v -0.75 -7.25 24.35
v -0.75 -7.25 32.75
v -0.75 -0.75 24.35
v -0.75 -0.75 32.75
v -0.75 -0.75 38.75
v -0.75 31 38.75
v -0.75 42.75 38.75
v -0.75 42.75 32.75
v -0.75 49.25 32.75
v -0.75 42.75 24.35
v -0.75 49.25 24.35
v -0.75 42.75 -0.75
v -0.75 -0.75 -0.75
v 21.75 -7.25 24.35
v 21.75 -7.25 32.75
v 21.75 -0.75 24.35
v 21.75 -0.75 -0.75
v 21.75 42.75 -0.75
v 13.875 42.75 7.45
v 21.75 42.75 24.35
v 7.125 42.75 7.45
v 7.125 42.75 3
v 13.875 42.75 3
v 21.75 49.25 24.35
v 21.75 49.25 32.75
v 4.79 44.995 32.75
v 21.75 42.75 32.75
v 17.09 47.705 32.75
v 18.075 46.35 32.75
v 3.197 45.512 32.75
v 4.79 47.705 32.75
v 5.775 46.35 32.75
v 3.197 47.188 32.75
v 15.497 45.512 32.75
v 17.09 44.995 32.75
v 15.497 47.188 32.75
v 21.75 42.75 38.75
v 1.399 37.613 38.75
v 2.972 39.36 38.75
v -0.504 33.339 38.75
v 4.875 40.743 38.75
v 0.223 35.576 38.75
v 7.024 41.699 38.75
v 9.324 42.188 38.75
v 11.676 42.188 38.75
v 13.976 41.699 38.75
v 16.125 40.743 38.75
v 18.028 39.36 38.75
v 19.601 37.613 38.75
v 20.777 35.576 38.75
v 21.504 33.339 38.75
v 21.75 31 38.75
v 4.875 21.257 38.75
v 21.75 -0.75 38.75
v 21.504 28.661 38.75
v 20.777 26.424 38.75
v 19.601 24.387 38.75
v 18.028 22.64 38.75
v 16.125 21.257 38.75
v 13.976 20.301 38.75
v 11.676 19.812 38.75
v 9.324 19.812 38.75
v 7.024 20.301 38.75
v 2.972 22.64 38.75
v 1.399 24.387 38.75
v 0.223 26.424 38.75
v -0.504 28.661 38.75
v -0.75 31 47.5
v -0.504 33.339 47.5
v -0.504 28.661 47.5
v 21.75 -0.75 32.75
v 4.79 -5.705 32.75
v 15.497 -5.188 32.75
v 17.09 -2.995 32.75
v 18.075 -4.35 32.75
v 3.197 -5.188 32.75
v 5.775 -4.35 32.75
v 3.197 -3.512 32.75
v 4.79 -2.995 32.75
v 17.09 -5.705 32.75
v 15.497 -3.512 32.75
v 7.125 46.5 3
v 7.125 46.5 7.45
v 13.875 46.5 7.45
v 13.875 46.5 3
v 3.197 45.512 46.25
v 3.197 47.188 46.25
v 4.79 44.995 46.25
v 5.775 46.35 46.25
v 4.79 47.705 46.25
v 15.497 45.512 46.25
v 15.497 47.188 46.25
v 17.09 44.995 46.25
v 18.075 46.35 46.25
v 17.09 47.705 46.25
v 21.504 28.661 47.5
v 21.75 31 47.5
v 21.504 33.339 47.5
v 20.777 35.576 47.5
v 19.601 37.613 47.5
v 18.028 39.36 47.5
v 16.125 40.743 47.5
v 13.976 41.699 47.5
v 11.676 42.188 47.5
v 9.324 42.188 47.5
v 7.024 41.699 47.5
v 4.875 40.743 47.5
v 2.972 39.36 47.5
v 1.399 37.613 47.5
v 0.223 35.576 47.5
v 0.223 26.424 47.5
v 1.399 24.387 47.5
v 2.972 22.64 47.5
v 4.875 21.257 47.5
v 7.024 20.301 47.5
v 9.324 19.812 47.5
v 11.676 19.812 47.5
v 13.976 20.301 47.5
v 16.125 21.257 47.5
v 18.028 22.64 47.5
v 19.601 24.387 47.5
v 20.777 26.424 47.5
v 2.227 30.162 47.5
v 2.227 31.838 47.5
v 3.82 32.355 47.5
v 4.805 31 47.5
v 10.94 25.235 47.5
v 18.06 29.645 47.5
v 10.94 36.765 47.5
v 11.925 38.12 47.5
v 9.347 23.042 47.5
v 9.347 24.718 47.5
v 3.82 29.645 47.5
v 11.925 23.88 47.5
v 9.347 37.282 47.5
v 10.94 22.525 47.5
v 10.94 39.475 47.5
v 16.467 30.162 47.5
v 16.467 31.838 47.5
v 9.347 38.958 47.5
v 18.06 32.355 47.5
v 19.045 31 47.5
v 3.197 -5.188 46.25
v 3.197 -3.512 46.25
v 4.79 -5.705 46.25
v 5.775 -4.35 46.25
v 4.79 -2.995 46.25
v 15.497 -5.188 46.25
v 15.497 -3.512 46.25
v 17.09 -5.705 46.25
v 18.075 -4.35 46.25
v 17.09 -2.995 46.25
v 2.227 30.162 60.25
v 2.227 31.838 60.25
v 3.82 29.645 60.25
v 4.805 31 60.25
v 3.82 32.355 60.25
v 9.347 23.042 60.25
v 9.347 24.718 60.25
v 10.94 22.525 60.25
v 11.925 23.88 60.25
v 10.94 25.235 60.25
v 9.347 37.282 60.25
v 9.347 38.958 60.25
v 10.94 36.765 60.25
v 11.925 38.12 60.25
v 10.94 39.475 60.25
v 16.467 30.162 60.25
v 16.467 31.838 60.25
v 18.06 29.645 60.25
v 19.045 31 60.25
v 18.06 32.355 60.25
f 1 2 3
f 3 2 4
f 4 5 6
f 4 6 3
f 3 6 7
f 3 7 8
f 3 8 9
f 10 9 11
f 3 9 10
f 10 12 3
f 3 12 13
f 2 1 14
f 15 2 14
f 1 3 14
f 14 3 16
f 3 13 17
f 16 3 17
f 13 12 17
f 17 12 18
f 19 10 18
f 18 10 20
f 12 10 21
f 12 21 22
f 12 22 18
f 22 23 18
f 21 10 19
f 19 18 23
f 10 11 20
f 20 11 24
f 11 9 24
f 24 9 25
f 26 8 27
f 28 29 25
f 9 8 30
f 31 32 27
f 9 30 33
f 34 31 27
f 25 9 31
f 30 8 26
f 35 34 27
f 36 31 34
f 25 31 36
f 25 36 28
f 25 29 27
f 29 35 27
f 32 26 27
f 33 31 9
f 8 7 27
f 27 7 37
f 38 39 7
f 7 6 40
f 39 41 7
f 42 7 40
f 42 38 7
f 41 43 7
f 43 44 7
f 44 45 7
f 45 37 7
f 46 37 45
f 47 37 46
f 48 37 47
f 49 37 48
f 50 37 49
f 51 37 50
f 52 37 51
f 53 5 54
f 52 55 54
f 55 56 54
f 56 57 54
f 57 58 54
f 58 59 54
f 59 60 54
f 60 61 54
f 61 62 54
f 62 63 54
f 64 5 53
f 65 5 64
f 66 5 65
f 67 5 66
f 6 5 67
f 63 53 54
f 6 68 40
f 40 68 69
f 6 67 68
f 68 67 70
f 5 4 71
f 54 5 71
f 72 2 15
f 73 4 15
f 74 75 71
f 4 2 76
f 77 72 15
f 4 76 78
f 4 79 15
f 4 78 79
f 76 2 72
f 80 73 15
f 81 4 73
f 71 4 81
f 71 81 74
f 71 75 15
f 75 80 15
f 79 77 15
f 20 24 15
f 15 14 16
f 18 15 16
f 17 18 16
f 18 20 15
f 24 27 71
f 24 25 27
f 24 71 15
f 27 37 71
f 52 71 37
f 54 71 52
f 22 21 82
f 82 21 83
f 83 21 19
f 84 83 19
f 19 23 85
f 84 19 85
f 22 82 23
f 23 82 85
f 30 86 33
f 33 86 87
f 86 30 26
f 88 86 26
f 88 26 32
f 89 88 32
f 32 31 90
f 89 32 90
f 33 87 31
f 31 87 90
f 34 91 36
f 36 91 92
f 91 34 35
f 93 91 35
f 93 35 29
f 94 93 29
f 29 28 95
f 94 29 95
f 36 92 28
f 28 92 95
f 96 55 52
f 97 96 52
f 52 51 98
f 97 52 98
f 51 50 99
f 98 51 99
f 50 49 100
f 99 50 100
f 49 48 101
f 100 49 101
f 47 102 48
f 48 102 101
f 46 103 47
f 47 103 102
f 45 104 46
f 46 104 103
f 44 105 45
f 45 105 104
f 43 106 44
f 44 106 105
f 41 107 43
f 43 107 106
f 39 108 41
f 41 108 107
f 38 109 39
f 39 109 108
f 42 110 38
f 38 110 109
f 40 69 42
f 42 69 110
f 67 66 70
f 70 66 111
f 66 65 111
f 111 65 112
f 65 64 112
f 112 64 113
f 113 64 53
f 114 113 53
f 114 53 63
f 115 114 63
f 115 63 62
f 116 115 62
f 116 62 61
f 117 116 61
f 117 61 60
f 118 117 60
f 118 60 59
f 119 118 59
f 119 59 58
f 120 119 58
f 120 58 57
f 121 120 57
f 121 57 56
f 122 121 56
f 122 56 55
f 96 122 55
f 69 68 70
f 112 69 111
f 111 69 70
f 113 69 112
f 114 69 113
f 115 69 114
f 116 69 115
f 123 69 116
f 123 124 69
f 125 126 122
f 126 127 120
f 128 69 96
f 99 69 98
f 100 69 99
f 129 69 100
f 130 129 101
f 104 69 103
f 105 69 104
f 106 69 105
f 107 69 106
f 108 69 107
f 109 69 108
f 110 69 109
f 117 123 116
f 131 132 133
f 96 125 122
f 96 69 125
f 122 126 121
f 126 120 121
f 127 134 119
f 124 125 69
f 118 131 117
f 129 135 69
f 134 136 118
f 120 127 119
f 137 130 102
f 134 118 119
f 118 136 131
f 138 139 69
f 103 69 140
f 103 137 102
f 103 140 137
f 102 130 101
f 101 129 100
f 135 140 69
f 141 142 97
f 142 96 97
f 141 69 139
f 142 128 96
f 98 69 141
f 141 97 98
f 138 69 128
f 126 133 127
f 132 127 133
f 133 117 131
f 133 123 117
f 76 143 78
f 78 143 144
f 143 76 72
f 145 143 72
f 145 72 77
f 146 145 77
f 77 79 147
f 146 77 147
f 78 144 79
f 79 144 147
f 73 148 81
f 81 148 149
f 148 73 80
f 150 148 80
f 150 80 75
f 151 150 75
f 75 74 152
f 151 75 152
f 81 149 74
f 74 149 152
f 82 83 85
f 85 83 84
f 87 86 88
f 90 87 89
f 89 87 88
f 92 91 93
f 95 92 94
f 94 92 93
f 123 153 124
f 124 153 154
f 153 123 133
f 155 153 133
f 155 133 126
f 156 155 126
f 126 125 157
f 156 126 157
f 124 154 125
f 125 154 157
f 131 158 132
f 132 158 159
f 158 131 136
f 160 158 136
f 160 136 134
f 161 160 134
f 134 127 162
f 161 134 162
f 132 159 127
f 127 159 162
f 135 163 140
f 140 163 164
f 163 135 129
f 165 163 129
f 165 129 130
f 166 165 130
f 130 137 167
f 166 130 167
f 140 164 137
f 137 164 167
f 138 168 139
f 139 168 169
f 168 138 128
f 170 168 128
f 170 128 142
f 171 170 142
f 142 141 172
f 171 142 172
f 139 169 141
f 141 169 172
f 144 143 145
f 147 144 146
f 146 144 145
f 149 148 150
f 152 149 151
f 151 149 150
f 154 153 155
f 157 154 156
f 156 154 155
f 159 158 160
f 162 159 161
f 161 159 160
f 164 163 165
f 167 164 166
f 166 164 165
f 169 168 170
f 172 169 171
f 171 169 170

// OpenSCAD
//basic motor shape
height=38;
length=42;
thickness=21;

//wings for mounting
wingsheight=5.5;
wingslength=55;
wingsdist=26.5;
boltheadheight=1.4;

//cylinder on top of motor
cylinderheight=(46-38);
cylinderdiam=21;
cylinderdist=31;

//all bolts
boltheight=13.5;
boltdiam=2.1;

//body bolts
boltdist=4.35;

//cylinder bolts
cylboltdist2=3.5;
cylboltdist=7.12;

//hub for wires
hubheight=3.7;
hubwidth=6;
hublength=3;
hubdist=3;


//THIS IS THE TOLERANCE, THIS IS PROBABLY THE ONLY THING YOU WILL NEED TO ADJUST, IF THE HOLES ARE TOO SMALL, RAISE TOLERANCE, IF THEY ARE TOO BIG, LOWER TOLERANCE. IF THE HOLES DON'T LINE UP, THEN START CHANGING OTHER DIMENSIONS.
tolerance=.75;




//defining a bolt
module bolt()
{
	cylinder(boltheight+tolerance, (boltdiam+tolerance)/2, (boltdiam+tolerance)/2, 0);
}



//making the motor
module toleranceMotor()
{
	union()
	{

//basic motor shape
		translate([-tolerance, -tolerance, -tolerance])
		{
			cube([thickness+tolerance*2, length+tolerance*2, height+tolerance*2]);
		}

//wings for mounting
		translate([-tolerance, (-tolerance+((length-wingslength)/2)), (wingsdist-tolerance-boltheadheight)])
		{
			cube([thickness+tolerance*2, wingslength+tolerance*2, wingsheight+tolerance*2+boltheadheight]);
		}

//cylinder on top of motor
		translate([cylinderdiam/2,cylinderdist,height])
		{
			cylinder(cylinderheight+tolerance*2, cylinderdiam/2+tolerance, cylinderdiam/2+tolerance, 0);

		}

//body bolts
		translate([boltdist,-boltdist,(wingsdist+wingsheight)])
		{
			bolt();
		}
		
		translate([(thickness-boltdist),-boltdist,(wingsdist+wingsheight)])
		{
			bolt();
		}

		translate([boltdist,(length+boltdist),(wingsdist+wingsheight)])
		{
			bolt();
		}
		
		translate([(thickness-boltdist),(length+boltdist),(wingsdist+wingsheight)])
		{
			bolt();
		}


//cylinder bolts
		translate([thickness/2,cylinderdist-cylboltdist,(height+cylinderheight)])
		{
			bolt();
		}

		translate([thickness/2,cylinderdist+cylboltdist,(height+cylinderheight)])
		{
			bolt();
		}

		translate([thickness/2+cylboltdist,cylinderdist,(height+cylinderheight)])
		{
			bolt();
		}

		translate([thickness/2-cylboltdist,cylinderdist,(height+cylinderheight)])
		{
			bolt();
		}

//hub for wires
		translate([(thickness-(hubwidth+tolerance))/2,(length+tolerance),hubdist])
		{
			cube([hubwidth+tolerance,hublength+tolerance,hubheight+tolerance]);
		}


	}
}


toleranceMotor();
